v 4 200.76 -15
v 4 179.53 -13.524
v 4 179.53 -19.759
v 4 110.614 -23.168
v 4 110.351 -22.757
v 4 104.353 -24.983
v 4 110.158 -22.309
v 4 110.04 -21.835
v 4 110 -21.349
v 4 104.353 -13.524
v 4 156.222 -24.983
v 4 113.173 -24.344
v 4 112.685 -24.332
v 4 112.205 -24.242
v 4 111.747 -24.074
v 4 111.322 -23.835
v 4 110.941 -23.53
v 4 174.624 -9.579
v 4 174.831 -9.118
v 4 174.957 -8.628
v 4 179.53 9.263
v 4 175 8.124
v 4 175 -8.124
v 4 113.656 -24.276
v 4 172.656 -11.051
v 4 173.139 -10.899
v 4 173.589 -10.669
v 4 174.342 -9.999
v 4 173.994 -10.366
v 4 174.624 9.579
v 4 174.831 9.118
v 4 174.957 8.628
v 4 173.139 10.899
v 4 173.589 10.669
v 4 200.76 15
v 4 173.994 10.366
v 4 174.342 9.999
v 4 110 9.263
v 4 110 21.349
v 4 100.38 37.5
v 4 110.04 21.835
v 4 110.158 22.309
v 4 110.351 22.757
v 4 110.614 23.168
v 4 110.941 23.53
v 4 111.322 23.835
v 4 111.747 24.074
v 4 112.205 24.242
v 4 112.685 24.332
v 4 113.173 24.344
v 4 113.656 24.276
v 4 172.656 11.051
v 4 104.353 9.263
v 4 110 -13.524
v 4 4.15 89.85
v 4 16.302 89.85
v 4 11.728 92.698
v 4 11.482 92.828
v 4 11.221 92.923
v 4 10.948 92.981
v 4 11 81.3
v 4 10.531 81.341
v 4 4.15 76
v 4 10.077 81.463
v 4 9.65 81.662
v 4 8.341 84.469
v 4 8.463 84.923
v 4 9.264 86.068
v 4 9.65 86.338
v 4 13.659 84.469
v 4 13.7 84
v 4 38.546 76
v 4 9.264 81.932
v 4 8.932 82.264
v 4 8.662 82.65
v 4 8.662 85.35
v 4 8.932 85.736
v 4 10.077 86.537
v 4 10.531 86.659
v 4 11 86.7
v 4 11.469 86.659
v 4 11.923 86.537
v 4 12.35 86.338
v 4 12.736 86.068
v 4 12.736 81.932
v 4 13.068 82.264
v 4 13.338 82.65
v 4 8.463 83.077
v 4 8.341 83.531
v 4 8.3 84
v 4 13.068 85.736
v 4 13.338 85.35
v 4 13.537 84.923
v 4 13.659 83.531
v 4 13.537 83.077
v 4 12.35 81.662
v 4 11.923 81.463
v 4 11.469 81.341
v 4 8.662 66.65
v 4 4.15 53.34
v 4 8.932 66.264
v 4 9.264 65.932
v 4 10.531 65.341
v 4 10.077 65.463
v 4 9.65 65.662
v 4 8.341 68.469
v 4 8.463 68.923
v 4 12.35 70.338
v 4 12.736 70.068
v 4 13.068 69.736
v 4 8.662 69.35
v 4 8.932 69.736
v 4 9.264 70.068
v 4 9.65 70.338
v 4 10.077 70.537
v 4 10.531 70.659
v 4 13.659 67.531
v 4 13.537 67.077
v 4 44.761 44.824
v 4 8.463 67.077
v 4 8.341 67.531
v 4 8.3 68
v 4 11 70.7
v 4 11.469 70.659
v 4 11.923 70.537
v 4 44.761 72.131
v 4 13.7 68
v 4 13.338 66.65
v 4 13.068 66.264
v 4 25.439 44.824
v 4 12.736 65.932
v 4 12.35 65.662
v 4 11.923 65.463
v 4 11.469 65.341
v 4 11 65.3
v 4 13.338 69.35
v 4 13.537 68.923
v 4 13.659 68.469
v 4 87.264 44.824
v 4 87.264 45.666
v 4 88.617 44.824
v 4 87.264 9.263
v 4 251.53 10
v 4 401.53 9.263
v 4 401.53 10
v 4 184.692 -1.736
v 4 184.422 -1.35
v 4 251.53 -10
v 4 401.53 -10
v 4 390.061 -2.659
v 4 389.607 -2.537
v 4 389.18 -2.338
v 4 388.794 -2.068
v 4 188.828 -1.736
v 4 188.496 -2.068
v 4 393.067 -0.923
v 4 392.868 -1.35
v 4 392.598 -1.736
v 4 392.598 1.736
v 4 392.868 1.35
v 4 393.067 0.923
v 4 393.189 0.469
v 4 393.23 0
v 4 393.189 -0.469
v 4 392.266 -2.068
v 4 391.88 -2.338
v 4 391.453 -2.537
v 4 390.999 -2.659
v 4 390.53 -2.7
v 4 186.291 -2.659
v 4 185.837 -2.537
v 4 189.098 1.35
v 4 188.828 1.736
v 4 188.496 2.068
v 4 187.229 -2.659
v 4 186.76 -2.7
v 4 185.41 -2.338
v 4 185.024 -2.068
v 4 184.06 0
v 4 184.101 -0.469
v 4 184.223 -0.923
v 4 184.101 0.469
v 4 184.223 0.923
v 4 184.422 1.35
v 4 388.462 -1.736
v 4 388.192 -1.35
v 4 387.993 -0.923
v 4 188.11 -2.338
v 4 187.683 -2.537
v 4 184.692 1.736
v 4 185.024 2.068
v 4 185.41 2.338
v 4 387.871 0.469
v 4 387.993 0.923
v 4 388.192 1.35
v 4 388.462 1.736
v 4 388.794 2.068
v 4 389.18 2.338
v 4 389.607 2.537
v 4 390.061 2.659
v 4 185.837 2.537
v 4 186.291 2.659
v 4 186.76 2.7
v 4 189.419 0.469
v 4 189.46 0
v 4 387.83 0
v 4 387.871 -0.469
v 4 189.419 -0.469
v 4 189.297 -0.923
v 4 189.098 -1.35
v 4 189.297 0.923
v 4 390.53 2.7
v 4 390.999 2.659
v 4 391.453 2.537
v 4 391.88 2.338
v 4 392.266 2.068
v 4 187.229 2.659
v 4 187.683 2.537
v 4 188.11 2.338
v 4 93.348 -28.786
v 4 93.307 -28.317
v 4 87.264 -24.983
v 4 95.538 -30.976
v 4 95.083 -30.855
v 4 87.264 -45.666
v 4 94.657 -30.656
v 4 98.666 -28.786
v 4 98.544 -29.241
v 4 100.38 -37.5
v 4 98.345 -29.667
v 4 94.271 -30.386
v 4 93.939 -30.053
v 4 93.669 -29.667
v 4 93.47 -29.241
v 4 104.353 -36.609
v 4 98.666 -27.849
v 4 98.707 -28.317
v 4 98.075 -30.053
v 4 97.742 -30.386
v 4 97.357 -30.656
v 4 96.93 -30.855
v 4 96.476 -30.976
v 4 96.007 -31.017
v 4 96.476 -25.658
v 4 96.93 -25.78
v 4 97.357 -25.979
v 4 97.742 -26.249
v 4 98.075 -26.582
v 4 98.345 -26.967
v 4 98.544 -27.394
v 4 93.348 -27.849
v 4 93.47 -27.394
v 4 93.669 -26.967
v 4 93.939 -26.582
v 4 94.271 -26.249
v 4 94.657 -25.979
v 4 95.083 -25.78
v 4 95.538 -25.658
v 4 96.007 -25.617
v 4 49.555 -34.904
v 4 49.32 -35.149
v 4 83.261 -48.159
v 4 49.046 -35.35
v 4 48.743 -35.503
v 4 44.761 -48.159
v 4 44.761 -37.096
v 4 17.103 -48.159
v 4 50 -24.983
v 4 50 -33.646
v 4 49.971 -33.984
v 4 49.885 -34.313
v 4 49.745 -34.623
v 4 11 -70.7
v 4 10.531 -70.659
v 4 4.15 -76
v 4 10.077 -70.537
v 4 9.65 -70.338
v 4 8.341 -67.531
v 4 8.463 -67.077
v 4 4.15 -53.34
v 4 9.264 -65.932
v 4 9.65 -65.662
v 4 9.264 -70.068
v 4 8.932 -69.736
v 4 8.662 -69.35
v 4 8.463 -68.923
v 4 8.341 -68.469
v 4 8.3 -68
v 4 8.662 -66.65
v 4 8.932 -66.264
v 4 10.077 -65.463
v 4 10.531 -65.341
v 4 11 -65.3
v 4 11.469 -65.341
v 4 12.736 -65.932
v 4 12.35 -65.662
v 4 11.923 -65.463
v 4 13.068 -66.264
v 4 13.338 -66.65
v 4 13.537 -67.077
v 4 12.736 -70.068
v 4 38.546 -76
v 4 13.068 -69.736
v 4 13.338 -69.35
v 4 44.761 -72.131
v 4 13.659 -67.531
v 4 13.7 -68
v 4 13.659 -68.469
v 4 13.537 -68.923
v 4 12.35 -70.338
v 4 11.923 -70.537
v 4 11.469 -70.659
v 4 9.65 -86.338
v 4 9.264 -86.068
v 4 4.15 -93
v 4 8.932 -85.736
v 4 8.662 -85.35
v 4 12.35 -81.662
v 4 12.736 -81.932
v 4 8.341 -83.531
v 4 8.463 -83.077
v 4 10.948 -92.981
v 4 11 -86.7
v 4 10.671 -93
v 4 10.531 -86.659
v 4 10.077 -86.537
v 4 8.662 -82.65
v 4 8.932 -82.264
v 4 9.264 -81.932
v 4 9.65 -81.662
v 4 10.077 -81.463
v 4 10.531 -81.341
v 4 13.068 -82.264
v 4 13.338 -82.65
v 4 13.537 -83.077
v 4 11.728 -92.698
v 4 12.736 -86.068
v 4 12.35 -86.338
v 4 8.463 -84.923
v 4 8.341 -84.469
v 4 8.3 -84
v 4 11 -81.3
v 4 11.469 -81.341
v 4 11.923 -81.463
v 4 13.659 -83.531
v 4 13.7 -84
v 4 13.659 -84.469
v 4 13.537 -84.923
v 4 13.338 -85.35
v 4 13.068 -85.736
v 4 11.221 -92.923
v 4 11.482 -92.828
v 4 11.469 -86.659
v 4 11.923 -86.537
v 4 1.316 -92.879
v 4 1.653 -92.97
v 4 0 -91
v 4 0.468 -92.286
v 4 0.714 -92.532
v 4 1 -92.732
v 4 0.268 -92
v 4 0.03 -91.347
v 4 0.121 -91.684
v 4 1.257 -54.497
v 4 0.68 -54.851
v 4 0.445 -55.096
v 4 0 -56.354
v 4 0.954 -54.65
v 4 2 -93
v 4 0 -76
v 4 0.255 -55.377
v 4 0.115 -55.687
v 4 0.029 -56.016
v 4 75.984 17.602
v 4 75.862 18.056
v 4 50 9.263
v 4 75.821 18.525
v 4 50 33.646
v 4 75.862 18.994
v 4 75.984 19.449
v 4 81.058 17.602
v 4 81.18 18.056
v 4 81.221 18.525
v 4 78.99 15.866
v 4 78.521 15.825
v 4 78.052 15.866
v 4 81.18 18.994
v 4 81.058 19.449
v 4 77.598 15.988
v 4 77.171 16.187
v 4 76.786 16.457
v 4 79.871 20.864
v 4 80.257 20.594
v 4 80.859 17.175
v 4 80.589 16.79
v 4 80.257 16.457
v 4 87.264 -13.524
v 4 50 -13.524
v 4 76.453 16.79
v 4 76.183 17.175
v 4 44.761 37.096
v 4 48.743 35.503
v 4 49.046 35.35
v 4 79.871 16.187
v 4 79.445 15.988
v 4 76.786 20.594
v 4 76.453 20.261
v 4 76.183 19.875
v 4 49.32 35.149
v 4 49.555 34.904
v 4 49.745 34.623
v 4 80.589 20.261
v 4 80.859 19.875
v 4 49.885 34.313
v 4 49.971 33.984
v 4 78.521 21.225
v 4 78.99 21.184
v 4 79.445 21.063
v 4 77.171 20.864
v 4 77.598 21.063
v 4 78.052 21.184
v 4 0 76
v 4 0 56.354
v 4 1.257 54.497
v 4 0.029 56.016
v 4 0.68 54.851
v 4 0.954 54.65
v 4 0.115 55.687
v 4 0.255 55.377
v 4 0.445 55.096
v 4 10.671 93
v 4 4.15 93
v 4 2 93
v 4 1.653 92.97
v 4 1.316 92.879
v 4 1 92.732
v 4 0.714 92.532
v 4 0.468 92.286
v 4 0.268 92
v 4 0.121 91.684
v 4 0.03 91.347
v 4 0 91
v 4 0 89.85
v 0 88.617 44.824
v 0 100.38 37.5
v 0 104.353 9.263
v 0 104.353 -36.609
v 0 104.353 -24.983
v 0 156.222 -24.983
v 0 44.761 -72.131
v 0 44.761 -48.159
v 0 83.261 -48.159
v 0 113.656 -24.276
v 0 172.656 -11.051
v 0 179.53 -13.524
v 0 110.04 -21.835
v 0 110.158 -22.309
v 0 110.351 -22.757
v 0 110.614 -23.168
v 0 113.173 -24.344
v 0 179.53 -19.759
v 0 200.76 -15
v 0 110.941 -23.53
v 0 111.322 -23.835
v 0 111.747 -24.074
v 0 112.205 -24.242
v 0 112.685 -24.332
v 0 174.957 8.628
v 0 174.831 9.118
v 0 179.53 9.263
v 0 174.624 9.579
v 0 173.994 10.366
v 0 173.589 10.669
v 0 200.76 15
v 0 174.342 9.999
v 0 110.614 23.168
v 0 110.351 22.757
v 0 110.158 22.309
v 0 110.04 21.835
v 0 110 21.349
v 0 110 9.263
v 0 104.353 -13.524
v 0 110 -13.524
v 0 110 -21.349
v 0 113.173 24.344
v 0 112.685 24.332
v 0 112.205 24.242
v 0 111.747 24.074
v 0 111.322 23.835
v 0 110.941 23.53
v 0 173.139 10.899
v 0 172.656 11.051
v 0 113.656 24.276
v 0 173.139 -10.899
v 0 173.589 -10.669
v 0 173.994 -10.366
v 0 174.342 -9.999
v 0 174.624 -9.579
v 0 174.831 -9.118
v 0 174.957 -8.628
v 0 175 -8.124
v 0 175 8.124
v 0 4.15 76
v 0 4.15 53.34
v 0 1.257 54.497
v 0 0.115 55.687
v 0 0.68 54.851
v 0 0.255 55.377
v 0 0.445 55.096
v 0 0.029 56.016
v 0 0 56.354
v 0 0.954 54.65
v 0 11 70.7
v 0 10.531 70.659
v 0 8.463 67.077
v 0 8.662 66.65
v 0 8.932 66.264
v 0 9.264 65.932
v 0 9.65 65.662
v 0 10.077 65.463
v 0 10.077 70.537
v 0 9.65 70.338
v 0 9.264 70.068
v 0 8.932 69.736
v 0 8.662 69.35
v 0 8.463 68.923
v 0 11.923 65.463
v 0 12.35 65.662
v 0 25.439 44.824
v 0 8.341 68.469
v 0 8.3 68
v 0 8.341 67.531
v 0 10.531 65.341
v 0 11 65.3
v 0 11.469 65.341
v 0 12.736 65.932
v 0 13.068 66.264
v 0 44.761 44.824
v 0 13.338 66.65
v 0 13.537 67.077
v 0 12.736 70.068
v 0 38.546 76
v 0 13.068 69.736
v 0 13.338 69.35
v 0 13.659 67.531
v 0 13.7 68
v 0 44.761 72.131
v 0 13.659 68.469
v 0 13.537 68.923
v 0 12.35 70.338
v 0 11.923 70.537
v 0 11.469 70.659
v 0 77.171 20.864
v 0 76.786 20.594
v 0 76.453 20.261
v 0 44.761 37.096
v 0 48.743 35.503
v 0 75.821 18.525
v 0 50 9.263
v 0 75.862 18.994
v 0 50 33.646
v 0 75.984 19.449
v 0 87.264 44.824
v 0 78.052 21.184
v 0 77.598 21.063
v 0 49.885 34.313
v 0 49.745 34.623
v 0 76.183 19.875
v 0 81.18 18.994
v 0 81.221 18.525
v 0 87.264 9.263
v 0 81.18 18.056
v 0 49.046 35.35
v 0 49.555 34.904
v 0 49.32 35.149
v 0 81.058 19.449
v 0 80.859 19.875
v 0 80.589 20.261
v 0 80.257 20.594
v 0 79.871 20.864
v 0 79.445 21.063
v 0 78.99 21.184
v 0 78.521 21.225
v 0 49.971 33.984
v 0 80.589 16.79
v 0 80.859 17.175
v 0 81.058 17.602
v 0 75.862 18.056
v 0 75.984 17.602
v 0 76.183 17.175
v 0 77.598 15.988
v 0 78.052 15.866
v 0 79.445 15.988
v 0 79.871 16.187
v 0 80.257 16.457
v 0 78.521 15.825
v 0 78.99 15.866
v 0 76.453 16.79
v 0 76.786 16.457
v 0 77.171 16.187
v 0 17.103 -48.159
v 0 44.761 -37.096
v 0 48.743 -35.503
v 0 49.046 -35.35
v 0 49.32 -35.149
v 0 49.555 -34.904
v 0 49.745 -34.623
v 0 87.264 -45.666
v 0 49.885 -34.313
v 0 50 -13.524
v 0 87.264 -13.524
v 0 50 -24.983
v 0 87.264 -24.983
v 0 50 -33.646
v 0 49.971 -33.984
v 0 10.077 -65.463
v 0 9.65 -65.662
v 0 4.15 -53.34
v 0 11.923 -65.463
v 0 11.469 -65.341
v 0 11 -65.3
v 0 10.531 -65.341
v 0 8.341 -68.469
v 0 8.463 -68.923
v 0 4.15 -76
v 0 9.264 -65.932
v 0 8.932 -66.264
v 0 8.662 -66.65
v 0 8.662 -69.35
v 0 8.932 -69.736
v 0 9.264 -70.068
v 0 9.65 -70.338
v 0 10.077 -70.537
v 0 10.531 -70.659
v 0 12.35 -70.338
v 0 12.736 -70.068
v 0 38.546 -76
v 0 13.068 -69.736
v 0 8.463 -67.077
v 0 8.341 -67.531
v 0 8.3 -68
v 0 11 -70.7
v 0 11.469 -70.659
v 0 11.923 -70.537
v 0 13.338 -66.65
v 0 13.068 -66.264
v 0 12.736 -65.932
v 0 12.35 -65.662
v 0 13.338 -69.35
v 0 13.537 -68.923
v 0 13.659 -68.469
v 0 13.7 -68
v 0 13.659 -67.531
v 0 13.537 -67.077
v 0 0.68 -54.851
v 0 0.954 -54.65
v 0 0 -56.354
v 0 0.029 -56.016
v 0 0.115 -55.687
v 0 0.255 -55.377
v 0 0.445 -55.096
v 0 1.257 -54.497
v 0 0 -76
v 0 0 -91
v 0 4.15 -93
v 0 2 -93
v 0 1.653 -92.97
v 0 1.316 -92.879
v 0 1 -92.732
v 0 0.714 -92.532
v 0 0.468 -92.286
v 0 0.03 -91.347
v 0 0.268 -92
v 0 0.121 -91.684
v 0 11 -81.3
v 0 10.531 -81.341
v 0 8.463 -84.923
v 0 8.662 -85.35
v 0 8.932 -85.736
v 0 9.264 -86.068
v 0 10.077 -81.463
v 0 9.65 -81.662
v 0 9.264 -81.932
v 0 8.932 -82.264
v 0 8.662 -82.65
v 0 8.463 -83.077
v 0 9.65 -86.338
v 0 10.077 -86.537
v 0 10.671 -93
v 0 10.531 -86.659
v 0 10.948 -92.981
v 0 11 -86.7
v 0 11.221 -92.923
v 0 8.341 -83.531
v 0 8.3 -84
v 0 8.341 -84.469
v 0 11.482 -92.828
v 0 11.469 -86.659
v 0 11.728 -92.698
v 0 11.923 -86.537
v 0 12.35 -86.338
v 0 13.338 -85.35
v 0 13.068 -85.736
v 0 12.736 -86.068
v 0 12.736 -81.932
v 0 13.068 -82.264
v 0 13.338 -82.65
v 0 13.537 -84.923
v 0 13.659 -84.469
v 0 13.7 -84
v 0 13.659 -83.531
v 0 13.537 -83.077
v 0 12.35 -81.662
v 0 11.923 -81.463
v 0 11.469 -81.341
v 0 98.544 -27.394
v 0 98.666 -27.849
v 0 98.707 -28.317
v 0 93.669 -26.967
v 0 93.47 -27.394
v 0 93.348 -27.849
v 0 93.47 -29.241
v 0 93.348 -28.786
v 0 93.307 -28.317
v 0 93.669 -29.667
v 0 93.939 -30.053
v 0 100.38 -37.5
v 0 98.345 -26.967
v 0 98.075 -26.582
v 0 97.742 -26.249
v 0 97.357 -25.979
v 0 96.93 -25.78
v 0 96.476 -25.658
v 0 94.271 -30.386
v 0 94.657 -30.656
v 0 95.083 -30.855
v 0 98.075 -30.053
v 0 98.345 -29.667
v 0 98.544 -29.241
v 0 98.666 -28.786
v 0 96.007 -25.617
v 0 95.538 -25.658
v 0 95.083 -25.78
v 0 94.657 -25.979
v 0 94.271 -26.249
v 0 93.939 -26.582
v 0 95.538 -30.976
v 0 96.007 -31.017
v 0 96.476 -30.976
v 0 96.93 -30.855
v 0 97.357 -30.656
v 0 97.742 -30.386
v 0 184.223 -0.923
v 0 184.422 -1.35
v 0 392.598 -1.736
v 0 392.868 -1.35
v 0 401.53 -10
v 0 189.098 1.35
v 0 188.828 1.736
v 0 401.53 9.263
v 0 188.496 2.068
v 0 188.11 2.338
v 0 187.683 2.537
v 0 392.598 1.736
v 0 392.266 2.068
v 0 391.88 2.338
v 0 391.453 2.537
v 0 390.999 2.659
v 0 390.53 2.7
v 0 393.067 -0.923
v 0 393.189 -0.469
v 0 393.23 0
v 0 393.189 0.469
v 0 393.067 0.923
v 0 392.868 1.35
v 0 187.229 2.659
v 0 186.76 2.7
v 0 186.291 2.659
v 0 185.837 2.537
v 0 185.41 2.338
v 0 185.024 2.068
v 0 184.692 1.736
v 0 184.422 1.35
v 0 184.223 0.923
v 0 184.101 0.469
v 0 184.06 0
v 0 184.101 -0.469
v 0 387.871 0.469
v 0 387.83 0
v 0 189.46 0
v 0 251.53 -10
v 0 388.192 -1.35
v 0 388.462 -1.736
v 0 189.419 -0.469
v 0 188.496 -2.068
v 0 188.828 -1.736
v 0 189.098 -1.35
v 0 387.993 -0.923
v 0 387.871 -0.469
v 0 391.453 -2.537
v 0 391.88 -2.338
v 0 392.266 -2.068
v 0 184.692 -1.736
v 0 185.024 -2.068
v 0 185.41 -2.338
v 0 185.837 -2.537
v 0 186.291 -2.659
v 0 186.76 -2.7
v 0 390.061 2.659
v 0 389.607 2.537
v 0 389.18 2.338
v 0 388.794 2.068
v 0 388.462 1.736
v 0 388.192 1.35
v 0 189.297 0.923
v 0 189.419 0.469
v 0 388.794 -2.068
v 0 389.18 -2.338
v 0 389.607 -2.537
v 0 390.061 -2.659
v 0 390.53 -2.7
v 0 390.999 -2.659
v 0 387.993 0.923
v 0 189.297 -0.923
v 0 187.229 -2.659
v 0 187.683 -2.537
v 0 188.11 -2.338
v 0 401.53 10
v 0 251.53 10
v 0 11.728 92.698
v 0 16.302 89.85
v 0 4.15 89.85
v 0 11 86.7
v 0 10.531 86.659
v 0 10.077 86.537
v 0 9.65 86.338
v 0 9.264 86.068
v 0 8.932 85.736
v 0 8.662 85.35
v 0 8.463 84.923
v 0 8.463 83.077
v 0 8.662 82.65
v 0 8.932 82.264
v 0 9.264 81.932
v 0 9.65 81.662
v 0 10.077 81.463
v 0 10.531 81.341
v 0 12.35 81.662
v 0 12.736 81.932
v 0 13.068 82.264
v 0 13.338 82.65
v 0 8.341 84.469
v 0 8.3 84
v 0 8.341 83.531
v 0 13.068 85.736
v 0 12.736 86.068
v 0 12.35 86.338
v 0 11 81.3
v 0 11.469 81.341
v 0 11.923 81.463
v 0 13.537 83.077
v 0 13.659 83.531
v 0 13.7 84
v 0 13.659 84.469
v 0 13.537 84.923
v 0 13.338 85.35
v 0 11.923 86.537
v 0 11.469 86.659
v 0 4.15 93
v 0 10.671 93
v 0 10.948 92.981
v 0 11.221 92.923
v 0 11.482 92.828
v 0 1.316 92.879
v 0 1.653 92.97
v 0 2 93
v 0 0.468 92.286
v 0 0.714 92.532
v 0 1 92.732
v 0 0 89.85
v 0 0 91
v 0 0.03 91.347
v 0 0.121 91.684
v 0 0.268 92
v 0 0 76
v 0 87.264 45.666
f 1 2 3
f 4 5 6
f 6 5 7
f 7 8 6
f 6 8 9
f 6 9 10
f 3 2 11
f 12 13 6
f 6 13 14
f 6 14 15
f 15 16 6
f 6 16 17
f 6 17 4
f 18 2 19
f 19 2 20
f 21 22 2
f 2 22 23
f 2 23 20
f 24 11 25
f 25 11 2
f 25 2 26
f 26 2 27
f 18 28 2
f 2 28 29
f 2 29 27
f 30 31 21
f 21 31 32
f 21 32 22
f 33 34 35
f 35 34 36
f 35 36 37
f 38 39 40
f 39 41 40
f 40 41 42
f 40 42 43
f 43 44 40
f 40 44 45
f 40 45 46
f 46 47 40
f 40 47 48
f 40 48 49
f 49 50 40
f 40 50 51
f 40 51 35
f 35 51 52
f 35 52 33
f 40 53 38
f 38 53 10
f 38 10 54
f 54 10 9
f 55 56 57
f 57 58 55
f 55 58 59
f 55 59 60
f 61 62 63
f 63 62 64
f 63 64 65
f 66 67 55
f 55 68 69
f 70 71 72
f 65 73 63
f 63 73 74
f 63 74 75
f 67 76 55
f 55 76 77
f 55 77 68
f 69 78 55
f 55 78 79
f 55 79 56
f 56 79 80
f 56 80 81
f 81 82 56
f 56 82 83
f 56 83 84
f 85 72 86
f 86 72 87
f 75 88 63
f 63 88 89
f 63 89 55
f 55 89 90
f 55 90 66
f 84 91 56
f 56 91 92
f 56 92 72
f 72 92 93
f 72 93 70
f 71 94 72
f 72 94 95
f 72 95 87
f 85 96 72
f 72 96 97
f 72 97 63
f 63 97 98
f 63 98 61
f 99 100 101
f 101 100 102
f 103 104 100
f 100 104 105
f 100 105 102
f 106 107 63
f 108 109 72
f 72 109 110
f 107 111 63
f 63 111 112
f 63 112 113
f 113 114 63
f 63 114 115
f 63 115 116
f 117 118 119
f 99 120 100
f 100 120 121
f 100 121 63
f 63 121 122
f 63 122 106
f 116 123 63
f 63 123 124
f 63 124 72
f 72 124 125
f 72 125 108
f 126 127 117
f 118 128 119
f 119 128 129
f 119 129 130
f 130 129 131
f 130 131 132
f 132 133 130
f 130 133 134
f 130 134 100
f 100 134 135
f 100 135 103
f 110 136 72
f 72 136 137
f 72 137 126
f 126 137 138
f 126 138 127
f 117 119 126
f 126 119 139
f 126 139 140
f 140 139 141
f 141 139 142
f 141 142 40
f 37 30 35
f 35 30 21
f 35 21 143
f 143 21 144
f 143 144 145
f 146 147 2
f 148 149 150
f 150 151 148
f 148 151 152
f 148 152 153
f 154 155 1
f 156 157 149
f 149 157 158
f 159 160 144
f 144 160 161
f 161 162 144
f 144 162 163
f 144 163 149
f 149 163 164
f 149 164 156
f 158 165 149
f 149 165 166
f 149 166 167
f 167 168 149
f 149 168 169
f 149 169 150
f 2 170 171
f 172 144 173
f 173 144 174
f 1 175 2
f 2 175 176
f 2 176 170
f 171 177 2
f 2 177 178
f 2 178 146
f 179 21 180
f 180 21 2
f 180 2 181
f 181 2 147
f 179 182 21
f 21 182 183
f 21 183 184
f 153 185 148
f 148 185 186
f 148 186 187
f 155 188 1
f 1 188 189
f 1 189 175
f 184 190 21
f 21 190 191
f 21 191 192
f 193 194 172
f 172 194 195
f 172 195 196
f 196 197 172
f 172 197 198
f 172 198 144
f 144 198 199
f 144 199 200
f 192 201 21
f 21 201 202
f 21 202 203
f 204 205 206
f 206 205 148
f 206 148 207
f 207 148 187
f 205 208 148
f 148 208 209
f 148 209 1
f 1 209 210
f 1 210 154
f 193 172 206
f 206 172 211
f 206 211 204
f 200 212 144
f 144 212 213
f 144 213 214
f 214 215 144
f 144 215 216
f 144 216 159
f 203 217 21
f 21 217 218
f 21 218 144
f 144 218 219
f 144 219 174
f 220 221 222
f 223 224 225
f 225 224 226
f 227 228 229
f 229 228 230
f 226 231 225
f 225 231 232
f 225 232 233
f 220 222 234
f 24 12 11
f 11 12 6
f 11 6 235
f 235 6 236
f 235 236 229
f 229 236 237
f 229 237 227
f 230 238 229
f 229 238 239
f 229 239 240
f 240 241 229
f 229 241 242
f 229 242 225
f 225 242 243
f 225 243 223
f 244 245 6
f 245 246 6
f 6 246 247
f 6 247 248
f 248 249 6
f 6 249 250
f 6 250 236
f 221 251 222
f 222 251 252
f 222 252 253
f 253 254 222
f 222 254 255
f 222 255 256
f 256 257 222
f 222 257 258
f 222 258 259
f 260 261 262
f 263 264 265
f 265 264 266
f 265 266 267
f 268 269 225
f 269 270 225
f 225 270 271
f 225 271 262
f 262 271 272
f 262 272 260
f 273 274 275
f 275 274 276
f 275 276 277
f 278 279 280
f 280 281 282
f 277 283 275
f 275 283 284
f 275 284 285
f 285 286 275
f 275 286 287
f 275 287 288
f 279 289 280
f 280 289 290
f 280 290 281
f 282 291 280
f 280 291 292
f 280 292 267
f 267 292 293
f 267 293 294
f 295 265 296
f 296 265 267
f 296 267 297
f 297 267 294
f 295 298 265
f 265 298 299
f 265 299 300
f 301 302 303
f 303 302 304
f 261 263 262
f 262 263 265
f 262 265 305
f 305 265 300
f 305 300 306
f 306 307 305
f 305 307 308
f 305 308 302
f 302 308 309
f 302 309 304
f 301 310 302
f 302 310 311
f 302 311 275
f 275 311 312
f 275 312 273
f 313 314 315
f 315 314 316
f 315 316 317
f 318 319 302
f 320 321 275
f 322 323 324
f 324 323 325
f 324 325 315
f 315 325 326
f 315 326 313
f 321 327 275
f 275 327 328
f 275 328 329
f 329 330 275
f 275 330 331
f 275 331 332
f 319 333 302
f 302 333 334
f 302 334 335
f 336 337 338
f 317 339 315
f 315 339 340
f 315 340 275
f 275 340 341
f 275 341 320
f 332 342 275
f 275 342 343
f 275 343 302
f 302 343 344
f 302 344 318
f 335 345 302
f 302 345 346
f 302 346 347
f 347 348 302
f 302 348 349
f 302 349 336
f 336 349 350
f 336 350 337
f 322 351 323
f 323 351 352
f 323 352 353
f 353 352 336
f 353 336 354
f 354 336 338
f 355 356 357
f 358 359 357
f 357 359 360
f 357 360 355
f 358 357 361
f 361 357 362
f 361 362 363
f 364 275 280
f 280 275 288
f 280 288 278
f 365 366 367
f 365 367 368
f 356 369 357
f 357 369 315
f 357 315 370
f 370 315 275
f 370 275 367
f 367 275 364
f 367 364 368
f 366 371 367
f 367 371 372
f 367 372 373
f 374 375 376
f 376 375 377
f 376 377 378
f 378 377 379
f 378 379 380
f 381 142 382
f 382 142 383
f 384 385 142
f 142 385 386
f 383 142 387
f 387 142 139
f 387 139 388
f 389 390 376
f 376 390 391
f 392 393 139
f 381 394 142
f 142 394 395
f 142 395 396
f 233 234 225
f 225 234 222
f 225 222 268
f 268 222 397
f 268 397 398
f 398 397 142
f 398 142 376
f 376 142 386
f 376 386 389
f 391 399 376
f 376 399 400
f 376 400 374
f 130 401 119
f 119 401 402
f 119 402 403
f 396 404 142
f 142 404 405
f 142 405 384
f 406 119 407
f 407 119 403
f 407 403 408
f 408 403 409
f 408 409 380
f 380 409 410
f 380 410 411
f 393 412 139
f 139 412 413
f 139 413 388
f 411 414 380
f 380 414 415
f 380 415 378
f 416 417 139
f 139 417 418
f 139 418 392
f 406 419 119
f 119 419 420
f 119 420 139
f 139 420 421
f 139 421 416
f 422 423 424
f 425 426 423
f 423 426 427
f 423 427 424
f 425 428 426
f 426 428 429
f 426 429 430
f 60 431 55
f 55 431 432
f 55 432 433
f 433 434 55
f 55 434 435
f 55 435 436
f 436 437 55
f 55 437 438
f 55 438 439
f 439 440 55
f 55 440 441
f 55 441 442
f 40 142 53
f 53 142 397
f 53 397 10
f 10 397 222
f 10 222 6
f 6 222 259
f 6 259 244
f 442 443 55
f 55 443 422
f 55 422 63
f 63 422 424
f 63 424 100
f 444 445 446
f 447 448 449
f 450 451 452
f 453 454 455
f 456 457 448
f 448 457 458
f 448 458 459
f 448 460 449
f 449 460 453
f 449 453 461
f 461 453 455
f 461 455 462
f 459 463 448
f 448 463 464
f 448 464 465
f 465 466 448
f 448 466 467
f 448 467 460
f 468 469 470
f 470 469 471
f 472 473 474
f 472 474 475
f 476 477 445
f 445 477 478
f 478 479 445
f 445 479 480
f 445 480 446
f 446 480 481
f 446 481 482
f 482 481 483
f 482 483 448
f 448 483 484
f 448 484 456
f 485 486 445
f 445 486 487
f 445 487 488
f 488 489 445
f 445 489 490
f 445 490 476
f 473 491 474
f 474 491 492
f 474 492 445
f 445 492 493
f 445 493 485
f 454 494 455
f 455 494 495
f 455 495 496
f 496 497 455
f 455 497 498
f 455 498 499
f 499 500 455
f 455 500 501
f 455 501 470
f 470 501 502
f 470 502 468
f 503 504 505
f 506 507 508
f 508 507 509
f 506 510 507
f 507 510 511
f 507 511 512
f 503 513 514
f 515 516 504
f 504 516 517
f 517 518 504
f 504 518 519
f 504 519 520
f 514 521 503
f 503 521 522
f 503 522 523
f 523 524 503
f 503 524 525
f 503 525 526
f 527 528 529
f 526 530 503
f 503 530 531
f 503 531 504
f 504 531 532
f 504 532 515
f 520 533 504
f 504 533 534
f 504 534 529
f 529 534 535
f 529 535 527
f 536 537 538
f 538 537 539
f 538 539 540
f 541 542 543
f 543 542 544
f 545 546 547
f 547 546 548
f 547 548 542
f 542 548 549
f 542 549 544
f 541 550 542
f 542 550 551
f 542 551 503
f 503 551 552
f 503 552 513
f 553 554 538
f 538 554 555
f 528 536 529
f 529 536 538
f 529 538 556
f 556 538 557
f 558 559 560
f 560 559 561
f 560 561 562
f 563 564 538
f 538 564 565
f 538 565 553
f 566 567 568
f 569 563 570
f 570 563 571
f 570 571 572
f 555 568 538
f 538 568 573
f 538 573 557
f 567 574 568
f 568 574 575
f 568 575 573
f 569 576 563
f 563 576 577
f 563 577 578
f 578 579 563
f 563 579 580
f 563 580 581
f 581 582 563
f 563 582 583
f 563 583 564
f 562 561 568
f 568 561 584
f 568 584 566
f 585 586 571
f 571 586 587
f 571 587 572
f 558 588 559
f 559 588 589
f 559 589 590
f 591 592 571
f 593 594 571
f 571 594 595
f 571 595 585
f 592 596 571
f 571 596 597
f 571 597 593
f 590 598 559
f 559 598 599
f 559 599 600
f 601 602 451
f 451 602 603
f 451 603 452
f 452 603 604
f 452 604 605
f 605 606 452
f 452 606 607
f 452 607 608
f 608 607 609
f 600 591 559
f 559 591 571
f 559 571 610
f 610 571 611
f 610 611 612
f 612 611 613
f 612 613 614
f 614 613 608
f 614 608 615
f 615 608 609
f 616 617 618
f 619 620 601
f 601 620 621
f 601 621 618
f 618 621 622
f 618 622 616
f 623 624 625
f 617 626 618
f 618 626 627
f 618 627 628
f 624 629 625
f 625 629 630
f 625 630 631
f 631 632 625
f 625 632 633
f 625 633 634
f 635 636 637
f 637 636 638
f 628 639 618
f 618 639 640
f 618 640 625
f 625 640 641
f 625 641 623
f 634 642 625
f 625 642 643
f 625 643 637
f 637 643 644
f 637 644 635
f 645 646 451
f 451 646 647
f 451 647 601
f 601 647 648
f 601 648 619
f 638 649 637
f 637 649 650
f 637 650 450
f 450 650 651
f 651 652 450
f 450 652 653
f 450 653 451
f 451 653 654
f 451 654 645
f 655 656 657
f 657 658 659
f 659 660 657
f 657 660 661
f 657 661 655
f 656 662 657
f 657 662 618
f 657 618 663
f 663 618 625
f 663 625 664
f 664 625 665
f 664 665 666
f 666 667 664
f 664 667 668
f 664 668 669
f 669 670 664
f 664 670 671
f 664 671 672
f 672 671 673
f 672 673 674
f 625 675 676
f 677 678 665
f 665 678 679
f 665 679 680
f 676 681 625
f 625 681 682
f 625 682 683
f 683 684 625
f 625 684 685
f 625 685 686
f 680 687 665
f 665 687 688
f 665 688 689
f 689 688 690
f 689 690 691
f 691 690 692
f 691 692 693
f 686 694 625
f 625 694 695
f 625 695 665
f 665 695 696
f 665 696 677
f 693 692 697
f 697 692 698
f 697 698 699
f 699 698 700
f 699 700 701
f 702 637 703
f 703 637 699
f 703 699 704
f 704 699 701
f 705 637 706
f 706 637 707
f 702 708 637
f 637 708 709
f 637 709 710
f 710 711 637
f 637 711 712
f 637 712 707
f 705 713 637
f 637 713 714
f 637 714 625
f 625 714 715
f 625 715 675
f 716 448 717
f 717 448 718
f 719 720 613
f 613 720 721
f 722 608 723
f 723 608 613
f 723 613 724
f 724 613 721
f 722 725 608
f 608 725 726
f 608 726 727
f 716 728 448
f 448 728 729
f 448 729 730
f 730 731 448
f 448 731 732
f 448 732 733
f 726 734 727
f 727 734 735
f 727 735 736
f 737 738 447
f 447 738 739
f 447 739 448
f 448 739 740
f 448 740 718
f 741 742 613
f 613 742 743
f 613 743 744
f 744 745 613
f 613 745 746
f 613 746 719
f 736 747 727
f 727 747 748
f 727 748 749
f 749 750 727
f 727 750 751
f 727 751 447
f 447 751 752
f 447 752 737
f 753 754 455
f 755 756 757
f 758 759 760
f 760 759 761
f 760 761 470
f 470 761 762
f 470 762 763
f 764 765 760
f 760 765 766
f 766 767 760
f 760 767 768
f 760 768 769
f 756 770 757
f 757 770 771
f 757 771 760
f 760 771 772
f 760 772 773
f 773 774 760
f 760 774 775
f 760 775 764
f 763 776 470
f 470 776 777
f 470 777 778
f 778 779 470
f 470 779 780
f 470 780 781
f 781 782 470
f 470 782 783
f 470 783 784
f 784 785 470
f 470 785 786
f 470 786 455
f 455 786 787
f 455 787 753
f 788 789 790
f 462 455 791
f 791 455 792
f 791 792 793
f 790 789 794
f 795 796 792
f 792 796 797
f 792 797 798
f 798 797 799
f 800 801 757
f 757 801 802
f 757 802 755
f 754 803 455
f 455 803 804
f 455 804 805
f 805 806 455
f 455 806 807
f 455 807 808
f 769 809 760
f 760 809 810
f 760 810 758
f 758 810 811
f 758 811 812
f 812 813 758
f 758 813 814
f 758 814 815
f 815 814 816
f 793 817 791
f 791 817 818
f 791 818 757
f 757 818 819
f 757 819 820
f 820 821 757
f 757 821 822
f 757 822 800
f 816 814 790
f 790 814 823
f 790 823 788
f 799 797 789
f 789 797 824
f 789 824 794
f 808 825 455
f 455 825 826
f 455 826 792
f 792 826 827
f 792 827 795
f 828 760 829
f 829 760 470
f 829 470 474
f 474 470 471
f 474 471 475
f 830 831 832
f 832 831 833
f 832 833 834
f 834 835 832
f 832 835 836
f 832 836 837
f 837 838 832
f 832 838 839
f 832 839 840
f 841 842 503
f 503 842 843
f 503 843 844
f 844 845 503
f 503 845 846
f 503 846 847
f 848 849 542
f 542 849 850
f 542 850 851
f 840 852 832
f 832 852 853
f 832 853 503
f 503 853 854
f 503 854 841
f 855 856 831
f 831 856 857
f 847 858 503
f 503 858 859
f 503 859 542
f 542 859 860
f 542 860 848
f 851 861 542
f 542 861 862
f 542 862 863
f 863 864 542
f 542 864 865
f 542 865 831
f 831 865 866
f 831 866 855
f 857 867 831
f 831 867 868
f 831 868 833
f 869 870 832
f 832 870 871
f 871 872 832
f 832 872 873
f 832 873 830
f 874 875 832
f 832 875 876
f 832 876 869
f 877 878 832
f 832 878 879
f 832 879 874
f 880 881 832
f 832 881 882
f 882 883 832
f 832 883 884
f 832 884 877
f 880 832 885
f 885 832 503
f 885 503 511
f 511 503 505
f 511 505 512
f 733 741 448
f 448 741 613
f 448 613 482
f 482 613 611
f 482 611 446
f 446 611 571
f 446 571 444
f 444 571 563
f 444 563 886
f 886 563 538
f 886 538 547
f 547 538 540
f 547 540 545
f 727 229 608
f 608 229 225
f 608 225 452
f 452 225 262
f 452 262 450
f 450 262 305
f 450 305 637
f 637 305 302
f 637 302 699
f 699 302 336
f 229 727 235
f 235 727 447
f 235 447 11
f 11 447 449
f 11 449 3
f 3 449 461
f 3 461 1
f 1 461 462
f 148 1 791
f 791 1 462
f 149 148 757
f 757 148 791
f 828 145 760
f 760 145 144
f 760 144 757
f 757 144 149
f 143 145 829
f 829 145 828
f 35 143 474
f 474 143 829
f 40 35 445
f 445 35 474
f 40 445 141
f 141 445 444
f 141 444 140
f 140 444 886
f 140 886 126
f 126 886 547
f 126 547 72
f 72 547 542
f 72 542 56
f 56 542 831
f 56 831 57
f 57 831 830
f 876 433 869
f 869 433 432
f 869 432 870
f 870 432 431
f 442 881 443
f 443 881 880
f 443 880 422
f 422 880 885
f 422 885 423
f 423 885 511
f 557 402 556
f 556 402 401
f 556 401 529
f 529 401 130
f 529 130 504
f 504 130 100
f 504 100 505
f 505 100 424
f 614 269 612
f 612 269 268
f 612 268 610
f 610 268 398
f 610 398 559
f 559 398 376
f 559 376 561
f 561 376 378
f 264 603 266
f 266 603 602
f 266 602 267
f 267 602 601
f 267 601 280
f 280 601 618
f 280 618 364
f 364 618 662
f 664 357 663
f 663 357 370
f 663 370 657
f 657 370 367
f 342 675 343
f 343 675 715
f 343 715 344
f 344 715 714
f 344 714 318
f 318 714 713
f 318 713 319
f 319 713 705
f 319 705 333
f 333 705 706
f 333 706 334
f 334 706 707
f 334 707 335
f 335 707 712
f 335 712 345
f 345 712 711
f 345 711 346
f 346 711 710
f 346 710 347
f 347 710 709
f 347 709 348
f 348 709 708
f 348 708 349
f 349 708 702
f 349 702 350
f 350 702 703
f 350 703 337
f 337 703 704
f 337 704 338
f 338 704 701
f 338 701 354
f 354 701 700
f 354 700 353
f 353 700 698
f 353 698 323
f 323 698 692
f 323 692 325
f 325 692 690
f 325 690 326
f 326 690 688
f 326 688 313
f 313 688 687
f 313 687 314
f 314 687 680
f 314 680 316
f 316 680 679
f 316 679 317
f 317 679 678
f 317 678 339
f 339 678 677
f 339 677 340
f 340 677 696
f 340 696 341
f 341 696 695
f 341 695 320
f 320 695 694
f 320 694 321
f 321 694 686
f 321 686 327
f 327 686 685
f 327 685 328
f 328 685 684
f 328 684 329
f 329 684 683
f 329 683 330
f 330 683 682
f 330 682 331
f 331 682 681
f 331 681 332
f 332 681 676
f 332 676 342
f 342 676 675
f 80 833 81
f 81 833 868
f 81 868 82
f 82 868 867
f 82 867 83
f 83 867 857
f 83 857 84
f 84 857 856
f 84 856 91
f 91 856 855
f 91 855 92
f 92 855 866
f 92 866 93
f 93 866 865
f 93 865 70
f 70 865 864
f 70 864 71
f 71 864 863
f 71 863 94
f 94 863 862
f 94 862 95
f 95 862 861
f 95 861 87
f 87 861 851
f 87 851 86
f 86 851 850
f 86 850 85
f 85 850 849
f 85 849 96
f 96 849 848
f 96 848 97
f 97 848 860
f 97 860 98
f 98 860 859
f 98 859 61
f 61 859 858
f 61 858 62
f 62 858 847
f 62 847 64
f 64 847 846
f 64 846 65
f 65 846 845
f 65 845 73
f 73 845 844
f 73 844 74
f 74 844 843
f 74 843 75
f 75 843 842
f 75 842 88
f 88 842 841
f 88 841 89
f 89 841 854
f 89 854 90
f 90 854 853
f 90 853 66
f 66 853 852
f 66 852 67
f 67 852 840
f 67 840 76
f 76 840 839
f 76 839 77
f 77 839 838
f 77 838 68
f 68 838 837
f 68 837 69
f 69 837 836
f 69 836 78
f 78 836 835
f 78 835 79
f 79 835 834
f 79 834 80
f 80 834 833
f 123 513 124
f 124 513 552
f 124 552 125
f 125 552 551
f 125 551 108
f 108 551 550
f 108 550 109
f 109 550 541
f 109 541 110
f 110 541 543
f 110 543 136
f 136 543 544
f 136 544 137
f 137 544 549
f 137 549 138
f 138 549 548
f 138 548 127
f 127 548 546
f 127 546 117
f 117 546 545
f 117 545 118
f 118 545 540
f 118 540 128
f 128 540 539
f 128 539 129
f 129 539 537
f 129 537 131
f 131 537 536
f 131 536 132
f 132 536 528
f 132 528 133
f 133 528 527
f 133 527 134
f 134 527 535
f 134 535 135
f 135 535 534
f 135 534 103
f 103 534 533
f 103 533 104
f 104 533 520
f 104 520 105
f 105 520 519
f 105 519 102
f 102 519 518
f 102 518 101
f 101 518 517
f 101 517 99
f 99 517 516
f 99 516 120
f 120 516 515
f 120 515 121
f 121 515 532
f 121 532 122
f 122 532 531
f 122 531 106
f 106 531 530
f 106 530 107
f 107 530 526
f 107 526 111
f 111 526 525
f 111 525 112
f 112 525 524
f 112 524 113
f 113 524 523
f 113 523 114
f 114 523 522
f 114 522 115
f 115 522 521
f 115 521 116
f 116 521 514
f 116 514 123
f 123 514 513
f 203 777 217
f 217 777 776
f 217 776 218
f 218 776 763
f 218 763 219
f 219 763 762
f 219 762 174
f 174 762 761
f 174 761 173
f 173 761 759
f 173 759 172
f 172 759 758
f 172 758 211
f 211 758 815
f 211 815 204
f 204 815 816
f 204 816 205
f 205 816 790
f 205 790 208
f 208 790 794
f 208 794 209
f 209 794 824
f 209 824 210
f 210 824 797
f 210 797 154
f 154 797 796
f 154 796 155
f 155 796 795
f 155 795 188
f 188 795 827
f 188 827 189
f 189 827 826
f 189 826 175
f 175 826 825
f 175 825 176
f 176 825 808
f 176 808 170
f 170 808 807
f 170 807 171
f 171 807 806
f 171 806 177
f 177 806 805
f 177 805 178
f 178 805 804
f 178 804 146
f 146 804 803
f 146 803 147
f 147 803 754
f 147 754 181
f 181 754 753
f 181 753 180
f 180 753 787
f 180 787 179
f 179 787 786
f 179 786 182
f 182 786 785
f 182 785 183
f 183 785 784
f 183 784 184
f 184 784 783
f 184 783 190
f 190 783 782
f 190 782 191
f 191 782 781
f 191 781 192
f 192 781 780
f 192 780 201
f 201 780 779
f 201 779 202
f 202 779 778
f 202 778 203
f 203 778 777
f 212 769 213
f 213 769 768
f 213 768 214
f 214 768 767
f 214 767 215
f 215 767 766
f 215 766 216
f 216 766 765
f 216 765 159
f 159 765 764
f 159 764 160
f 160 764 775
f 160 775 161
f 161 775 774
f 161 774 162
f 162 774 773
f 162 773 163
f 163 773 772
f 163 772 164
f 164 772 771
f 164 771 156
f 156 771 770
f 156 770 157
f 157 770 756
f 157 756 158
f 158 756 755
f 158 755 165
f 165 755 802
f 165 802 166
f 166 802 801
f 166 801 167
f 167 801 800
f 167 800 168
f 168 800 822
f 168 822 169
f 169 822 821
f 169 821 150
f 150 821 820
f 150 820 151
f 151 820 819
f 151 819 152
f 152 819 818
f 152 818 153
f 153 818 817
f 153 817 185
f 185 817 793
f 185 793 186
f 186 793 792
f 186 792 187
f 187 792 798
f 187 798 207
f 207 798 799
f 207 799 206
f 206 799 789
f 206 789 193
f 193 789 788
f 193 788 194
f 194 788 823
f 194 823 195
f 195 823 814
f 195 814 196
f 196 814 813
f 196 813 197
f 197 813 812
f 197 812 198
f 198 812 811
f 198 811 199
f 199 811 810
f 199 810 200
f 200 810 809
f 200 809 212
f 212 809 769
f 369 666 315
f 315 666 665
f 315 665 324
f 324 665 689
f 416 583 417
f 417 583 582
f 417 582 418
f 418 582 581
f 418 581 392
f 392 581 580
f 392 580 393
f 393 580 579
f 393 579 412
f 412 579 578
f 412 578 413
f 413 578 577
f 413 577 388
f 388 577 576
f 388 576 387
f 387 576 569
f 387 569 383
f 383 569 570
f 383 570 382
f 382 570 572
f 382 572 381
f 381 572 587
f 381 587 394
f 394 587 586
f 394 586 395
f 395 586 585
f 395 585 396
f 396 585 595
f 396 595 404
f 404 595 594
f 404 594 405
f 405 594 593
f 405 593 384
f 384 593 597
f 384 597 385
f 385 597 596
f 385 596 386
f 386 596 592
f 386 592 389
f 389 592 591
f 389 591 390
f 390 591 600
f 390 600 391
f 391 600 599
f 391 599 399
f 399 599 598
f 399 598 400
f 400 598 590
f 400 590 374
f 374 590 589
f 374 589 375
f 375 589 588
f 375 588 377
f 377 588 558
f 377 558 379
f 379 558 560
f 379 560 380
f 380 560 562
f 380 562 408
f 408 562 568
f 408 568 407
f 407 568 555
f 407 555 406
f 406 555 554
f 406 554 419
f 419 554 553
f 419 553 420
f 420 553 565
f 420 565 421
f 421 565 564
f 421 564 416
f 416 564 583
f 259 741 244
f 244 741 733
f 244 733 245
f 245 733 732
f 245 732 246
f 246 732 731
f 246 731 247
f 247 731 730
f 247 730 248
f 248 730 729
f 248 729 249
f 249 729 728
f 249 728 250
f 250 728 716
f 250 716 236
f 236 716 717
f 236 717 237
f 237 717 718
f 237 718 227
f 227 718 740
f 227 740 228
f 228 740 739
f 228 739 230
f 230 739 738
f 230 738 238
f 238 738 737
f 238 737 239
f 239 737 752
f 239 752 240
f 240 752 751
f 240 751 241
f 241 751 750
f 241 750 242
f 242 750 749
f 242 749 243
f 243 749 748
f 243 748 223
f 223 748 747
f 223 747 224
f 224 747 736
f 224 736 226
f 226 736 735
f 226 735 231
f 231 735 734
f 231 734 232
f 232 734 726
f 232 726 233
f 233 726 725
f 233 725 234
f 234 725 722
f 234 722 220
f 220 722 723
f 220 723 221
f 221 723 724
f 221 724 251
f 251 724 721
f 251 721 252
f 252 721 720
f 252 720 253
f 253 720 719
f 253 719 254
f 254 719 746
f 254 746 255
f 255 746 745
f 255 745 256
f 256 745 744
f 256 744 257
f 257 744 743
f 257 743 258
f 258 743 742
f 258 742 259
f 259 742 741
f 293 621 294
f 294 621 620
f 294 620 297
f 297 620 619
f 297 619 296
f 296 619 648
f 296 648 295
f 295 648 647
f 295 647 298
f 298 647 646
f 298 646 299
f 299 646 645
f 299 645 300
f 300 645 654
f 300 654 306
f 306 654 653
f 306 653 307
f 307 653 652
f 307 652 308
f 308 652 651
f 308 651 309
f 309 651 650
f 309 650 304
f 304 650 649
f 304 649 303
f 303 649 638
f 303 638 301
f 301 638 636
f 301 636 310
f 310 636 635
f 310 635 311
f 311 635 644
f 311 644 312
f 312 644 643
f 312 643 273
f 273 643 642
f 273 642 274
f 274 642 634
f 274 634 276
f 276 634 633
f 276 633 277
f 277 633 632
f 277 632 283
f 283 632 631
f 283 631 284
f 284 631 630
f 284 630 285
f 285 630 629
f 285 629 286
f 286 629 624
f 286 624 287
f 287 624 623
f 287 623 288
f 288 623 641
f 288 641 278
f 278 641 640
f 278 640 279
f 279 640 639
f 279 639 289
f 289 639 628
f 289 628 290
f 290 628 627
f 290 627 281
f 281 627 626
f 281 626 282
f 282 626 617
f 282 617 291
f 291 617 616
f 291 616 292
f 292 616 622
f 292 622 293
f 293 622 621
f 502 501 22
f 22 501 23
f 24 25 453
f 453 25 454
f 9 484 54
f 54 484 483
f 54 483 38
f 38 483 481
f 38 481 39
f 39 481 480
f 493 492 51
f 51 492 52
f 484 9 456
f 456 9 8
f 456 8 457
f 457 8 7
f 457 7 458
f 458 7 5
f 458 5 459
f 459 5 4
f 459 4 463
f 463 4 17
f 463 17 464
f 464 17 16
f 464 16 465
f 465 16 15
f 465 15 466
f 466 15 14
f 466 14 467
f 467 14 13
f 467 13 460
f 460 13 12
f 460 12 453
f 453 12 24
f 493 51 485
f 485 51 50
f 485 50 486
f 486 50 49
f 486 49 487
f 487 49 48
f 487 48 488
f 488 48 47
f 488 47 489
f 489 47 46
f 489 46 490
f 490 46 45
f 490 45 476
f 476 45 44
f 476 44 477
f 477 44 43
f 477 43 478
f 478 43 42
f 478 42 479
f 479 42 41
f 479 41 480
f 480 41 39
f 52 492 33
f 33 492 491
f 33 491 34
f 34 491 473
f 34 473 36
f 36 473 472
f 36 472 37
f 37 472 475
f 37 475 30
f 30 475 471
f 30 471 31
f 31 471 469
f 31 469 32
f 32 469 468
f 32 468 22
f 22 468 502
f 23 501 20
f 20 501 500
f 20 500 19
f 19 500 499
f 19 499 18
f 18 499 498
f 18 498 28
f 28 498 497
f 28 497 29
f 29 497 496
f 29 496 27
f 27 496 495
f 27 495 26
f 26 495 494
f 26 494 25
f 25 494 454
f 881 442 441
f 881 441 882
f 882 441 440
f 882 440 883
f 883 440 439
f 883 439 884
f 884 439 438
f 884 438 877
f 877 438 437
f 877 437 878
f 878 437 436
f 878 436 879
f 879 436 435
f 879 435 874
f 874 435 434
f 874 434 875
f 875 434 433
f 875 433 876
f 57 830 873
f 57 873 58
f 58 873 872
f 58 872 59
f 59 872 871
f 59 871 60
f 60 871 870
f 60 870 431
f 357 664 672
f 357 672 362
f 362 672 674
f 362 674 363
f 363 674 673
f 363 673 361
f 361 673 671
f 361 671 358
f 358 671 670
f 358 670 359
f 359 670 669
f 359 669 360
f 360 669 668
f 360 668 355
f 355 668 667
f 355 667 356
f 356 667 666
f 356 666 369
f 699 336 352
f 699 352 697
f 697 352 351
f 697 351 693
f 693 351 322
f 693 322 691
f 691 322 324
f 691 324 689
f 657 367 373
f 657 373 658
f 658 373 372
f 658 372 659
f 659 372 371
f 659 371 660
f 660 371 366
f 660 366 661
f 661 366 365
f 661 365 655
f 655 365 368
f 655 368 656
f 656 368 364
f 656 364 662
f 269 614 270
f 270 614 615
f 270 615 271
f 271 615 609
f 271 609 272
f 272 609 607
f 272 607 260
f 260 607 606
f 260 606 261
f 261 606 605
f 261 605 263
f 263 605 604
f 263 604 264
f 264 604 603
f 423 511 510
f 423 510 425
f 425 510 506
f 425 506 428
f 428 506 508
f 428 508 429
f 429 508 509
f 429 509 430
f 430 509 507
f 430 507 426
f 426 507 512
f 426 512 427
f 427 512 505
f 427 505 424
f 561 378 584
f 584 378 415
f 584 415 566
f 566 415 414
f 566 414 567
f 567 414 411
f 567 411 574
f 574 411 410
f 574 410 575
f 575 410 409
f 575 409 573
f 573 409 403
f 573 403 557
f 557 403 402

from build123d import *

# Parameters (mm, degrees)
SKETCH_1_R          = 2.7
EXTRUDE_1_DEPTH     = 4
CUT_EXTRUDE_1_REACH = 414.179
FILLET_1_R          = 3
FILLET_2_R          = 2


with BuildPart() as part:
    # 草圖1 → 填料-伸長1 (new body)
    with BuildSketch(Plane(origin=(0, 0, 0), x_dir=(0, 0, -1), z_dir=(1, 0, 0))):
        Polygon((-55, 0), (-35, 50), (35, 50), (55, 0), (93, 0), (93, 11.24256), (37.5, 100.38), (15, 200.76), (10, 251.53), (10, 401.53), (-10, 401.53), (-10, 251.53), (-15, 200.76), (-37.5, 100.38), (-93, 11.24256), (-93, 0), align=None)
        with Locations((28.317422225, 96.006946316)):
            Circle(SKETCH_1_R, mode=Mode.SUBTRACT)
        with Locations((-18.525349225, 78.521101672)):
            Circle(SKETCH_1_R, mode=Mode.SUBTRACT)
        with Locations((68, 11)):
            Circle(SKETCH_1_R, mode=Mode.SUBTRACT)
        with Locations((84, 11)):
            Circle(SKETCH_1_R, mode=Mode.SUBTRACT)
        with Locations((-84, 11)):
            Circle(SKETCH_1_R, mode=Mode.SUBTRACT)
        with Locations((-68, 11)):
            Circle(SKETCH_1_R, mode=Mode.SUBTRACT)
        with Locations((0, 186.76)):
            Circle(SKETCH_1_R, mode=Mode.SUBTRACT)
        with Locations((0, 390.53)):
            Circle(SKETCH_1_R, mode=Mode.SUBTRACT)
    extrude(amount=EXTRUDE_1_DEPTH)

    # 草圖3 → 除料-伸長1 (cut, up to next)
    with BuildSketch(Plane(origin=(4, 0, 0), x_dir=(0, 0, -1), z_dir=(1, 0, 0)), mode=Mode.PRIVATE) as cut_extrude_1_sk1:
        Polygon((-10.525924933, 175), (-25.095560318, 110), (25.095560318, 110), (10.525924933, 175), align=None)
    cut_extrude_1_tool1 = extrude(cut_extrude_1_sk1.sketch, amount=-CUT_EXTRUDE_1_REACH, mode=Mode.PRIVATE) & part.part
    add(cut_extrude_1_tool1.solids().sort_by_distance((4, 138.06903, 0))[0], mode=Mode.SUBTRACT)

    # 圓角1
    fillet_1_edges = [part.edges().sort_by_distance(p)[0] for p in [
        (2, 175, 10.525924933),
        (2, 175, -10.525924933),
        (2, 110, -25.095560318),
        (2, 110, 25.095560318),
    ]]
    fillet(fillet_1_edges, radius=FILLET_1_R)

    # 圓角2
    fillet_2_edges = [part.edges().sort_by_distance(p)[0] for p in [
        (2, 11.24256, -93),
        (2, 0, -93),
        (2, 0, -55),
        (2, 50, -35),
        (2, 50, 35),
        (2, 0, 55),
        (2, 0, 93),
        (2, 11.24256, 93),
    ]]
    fillet(fillet_2_edges, radius=FILLET_2_R)


solid = part.part
